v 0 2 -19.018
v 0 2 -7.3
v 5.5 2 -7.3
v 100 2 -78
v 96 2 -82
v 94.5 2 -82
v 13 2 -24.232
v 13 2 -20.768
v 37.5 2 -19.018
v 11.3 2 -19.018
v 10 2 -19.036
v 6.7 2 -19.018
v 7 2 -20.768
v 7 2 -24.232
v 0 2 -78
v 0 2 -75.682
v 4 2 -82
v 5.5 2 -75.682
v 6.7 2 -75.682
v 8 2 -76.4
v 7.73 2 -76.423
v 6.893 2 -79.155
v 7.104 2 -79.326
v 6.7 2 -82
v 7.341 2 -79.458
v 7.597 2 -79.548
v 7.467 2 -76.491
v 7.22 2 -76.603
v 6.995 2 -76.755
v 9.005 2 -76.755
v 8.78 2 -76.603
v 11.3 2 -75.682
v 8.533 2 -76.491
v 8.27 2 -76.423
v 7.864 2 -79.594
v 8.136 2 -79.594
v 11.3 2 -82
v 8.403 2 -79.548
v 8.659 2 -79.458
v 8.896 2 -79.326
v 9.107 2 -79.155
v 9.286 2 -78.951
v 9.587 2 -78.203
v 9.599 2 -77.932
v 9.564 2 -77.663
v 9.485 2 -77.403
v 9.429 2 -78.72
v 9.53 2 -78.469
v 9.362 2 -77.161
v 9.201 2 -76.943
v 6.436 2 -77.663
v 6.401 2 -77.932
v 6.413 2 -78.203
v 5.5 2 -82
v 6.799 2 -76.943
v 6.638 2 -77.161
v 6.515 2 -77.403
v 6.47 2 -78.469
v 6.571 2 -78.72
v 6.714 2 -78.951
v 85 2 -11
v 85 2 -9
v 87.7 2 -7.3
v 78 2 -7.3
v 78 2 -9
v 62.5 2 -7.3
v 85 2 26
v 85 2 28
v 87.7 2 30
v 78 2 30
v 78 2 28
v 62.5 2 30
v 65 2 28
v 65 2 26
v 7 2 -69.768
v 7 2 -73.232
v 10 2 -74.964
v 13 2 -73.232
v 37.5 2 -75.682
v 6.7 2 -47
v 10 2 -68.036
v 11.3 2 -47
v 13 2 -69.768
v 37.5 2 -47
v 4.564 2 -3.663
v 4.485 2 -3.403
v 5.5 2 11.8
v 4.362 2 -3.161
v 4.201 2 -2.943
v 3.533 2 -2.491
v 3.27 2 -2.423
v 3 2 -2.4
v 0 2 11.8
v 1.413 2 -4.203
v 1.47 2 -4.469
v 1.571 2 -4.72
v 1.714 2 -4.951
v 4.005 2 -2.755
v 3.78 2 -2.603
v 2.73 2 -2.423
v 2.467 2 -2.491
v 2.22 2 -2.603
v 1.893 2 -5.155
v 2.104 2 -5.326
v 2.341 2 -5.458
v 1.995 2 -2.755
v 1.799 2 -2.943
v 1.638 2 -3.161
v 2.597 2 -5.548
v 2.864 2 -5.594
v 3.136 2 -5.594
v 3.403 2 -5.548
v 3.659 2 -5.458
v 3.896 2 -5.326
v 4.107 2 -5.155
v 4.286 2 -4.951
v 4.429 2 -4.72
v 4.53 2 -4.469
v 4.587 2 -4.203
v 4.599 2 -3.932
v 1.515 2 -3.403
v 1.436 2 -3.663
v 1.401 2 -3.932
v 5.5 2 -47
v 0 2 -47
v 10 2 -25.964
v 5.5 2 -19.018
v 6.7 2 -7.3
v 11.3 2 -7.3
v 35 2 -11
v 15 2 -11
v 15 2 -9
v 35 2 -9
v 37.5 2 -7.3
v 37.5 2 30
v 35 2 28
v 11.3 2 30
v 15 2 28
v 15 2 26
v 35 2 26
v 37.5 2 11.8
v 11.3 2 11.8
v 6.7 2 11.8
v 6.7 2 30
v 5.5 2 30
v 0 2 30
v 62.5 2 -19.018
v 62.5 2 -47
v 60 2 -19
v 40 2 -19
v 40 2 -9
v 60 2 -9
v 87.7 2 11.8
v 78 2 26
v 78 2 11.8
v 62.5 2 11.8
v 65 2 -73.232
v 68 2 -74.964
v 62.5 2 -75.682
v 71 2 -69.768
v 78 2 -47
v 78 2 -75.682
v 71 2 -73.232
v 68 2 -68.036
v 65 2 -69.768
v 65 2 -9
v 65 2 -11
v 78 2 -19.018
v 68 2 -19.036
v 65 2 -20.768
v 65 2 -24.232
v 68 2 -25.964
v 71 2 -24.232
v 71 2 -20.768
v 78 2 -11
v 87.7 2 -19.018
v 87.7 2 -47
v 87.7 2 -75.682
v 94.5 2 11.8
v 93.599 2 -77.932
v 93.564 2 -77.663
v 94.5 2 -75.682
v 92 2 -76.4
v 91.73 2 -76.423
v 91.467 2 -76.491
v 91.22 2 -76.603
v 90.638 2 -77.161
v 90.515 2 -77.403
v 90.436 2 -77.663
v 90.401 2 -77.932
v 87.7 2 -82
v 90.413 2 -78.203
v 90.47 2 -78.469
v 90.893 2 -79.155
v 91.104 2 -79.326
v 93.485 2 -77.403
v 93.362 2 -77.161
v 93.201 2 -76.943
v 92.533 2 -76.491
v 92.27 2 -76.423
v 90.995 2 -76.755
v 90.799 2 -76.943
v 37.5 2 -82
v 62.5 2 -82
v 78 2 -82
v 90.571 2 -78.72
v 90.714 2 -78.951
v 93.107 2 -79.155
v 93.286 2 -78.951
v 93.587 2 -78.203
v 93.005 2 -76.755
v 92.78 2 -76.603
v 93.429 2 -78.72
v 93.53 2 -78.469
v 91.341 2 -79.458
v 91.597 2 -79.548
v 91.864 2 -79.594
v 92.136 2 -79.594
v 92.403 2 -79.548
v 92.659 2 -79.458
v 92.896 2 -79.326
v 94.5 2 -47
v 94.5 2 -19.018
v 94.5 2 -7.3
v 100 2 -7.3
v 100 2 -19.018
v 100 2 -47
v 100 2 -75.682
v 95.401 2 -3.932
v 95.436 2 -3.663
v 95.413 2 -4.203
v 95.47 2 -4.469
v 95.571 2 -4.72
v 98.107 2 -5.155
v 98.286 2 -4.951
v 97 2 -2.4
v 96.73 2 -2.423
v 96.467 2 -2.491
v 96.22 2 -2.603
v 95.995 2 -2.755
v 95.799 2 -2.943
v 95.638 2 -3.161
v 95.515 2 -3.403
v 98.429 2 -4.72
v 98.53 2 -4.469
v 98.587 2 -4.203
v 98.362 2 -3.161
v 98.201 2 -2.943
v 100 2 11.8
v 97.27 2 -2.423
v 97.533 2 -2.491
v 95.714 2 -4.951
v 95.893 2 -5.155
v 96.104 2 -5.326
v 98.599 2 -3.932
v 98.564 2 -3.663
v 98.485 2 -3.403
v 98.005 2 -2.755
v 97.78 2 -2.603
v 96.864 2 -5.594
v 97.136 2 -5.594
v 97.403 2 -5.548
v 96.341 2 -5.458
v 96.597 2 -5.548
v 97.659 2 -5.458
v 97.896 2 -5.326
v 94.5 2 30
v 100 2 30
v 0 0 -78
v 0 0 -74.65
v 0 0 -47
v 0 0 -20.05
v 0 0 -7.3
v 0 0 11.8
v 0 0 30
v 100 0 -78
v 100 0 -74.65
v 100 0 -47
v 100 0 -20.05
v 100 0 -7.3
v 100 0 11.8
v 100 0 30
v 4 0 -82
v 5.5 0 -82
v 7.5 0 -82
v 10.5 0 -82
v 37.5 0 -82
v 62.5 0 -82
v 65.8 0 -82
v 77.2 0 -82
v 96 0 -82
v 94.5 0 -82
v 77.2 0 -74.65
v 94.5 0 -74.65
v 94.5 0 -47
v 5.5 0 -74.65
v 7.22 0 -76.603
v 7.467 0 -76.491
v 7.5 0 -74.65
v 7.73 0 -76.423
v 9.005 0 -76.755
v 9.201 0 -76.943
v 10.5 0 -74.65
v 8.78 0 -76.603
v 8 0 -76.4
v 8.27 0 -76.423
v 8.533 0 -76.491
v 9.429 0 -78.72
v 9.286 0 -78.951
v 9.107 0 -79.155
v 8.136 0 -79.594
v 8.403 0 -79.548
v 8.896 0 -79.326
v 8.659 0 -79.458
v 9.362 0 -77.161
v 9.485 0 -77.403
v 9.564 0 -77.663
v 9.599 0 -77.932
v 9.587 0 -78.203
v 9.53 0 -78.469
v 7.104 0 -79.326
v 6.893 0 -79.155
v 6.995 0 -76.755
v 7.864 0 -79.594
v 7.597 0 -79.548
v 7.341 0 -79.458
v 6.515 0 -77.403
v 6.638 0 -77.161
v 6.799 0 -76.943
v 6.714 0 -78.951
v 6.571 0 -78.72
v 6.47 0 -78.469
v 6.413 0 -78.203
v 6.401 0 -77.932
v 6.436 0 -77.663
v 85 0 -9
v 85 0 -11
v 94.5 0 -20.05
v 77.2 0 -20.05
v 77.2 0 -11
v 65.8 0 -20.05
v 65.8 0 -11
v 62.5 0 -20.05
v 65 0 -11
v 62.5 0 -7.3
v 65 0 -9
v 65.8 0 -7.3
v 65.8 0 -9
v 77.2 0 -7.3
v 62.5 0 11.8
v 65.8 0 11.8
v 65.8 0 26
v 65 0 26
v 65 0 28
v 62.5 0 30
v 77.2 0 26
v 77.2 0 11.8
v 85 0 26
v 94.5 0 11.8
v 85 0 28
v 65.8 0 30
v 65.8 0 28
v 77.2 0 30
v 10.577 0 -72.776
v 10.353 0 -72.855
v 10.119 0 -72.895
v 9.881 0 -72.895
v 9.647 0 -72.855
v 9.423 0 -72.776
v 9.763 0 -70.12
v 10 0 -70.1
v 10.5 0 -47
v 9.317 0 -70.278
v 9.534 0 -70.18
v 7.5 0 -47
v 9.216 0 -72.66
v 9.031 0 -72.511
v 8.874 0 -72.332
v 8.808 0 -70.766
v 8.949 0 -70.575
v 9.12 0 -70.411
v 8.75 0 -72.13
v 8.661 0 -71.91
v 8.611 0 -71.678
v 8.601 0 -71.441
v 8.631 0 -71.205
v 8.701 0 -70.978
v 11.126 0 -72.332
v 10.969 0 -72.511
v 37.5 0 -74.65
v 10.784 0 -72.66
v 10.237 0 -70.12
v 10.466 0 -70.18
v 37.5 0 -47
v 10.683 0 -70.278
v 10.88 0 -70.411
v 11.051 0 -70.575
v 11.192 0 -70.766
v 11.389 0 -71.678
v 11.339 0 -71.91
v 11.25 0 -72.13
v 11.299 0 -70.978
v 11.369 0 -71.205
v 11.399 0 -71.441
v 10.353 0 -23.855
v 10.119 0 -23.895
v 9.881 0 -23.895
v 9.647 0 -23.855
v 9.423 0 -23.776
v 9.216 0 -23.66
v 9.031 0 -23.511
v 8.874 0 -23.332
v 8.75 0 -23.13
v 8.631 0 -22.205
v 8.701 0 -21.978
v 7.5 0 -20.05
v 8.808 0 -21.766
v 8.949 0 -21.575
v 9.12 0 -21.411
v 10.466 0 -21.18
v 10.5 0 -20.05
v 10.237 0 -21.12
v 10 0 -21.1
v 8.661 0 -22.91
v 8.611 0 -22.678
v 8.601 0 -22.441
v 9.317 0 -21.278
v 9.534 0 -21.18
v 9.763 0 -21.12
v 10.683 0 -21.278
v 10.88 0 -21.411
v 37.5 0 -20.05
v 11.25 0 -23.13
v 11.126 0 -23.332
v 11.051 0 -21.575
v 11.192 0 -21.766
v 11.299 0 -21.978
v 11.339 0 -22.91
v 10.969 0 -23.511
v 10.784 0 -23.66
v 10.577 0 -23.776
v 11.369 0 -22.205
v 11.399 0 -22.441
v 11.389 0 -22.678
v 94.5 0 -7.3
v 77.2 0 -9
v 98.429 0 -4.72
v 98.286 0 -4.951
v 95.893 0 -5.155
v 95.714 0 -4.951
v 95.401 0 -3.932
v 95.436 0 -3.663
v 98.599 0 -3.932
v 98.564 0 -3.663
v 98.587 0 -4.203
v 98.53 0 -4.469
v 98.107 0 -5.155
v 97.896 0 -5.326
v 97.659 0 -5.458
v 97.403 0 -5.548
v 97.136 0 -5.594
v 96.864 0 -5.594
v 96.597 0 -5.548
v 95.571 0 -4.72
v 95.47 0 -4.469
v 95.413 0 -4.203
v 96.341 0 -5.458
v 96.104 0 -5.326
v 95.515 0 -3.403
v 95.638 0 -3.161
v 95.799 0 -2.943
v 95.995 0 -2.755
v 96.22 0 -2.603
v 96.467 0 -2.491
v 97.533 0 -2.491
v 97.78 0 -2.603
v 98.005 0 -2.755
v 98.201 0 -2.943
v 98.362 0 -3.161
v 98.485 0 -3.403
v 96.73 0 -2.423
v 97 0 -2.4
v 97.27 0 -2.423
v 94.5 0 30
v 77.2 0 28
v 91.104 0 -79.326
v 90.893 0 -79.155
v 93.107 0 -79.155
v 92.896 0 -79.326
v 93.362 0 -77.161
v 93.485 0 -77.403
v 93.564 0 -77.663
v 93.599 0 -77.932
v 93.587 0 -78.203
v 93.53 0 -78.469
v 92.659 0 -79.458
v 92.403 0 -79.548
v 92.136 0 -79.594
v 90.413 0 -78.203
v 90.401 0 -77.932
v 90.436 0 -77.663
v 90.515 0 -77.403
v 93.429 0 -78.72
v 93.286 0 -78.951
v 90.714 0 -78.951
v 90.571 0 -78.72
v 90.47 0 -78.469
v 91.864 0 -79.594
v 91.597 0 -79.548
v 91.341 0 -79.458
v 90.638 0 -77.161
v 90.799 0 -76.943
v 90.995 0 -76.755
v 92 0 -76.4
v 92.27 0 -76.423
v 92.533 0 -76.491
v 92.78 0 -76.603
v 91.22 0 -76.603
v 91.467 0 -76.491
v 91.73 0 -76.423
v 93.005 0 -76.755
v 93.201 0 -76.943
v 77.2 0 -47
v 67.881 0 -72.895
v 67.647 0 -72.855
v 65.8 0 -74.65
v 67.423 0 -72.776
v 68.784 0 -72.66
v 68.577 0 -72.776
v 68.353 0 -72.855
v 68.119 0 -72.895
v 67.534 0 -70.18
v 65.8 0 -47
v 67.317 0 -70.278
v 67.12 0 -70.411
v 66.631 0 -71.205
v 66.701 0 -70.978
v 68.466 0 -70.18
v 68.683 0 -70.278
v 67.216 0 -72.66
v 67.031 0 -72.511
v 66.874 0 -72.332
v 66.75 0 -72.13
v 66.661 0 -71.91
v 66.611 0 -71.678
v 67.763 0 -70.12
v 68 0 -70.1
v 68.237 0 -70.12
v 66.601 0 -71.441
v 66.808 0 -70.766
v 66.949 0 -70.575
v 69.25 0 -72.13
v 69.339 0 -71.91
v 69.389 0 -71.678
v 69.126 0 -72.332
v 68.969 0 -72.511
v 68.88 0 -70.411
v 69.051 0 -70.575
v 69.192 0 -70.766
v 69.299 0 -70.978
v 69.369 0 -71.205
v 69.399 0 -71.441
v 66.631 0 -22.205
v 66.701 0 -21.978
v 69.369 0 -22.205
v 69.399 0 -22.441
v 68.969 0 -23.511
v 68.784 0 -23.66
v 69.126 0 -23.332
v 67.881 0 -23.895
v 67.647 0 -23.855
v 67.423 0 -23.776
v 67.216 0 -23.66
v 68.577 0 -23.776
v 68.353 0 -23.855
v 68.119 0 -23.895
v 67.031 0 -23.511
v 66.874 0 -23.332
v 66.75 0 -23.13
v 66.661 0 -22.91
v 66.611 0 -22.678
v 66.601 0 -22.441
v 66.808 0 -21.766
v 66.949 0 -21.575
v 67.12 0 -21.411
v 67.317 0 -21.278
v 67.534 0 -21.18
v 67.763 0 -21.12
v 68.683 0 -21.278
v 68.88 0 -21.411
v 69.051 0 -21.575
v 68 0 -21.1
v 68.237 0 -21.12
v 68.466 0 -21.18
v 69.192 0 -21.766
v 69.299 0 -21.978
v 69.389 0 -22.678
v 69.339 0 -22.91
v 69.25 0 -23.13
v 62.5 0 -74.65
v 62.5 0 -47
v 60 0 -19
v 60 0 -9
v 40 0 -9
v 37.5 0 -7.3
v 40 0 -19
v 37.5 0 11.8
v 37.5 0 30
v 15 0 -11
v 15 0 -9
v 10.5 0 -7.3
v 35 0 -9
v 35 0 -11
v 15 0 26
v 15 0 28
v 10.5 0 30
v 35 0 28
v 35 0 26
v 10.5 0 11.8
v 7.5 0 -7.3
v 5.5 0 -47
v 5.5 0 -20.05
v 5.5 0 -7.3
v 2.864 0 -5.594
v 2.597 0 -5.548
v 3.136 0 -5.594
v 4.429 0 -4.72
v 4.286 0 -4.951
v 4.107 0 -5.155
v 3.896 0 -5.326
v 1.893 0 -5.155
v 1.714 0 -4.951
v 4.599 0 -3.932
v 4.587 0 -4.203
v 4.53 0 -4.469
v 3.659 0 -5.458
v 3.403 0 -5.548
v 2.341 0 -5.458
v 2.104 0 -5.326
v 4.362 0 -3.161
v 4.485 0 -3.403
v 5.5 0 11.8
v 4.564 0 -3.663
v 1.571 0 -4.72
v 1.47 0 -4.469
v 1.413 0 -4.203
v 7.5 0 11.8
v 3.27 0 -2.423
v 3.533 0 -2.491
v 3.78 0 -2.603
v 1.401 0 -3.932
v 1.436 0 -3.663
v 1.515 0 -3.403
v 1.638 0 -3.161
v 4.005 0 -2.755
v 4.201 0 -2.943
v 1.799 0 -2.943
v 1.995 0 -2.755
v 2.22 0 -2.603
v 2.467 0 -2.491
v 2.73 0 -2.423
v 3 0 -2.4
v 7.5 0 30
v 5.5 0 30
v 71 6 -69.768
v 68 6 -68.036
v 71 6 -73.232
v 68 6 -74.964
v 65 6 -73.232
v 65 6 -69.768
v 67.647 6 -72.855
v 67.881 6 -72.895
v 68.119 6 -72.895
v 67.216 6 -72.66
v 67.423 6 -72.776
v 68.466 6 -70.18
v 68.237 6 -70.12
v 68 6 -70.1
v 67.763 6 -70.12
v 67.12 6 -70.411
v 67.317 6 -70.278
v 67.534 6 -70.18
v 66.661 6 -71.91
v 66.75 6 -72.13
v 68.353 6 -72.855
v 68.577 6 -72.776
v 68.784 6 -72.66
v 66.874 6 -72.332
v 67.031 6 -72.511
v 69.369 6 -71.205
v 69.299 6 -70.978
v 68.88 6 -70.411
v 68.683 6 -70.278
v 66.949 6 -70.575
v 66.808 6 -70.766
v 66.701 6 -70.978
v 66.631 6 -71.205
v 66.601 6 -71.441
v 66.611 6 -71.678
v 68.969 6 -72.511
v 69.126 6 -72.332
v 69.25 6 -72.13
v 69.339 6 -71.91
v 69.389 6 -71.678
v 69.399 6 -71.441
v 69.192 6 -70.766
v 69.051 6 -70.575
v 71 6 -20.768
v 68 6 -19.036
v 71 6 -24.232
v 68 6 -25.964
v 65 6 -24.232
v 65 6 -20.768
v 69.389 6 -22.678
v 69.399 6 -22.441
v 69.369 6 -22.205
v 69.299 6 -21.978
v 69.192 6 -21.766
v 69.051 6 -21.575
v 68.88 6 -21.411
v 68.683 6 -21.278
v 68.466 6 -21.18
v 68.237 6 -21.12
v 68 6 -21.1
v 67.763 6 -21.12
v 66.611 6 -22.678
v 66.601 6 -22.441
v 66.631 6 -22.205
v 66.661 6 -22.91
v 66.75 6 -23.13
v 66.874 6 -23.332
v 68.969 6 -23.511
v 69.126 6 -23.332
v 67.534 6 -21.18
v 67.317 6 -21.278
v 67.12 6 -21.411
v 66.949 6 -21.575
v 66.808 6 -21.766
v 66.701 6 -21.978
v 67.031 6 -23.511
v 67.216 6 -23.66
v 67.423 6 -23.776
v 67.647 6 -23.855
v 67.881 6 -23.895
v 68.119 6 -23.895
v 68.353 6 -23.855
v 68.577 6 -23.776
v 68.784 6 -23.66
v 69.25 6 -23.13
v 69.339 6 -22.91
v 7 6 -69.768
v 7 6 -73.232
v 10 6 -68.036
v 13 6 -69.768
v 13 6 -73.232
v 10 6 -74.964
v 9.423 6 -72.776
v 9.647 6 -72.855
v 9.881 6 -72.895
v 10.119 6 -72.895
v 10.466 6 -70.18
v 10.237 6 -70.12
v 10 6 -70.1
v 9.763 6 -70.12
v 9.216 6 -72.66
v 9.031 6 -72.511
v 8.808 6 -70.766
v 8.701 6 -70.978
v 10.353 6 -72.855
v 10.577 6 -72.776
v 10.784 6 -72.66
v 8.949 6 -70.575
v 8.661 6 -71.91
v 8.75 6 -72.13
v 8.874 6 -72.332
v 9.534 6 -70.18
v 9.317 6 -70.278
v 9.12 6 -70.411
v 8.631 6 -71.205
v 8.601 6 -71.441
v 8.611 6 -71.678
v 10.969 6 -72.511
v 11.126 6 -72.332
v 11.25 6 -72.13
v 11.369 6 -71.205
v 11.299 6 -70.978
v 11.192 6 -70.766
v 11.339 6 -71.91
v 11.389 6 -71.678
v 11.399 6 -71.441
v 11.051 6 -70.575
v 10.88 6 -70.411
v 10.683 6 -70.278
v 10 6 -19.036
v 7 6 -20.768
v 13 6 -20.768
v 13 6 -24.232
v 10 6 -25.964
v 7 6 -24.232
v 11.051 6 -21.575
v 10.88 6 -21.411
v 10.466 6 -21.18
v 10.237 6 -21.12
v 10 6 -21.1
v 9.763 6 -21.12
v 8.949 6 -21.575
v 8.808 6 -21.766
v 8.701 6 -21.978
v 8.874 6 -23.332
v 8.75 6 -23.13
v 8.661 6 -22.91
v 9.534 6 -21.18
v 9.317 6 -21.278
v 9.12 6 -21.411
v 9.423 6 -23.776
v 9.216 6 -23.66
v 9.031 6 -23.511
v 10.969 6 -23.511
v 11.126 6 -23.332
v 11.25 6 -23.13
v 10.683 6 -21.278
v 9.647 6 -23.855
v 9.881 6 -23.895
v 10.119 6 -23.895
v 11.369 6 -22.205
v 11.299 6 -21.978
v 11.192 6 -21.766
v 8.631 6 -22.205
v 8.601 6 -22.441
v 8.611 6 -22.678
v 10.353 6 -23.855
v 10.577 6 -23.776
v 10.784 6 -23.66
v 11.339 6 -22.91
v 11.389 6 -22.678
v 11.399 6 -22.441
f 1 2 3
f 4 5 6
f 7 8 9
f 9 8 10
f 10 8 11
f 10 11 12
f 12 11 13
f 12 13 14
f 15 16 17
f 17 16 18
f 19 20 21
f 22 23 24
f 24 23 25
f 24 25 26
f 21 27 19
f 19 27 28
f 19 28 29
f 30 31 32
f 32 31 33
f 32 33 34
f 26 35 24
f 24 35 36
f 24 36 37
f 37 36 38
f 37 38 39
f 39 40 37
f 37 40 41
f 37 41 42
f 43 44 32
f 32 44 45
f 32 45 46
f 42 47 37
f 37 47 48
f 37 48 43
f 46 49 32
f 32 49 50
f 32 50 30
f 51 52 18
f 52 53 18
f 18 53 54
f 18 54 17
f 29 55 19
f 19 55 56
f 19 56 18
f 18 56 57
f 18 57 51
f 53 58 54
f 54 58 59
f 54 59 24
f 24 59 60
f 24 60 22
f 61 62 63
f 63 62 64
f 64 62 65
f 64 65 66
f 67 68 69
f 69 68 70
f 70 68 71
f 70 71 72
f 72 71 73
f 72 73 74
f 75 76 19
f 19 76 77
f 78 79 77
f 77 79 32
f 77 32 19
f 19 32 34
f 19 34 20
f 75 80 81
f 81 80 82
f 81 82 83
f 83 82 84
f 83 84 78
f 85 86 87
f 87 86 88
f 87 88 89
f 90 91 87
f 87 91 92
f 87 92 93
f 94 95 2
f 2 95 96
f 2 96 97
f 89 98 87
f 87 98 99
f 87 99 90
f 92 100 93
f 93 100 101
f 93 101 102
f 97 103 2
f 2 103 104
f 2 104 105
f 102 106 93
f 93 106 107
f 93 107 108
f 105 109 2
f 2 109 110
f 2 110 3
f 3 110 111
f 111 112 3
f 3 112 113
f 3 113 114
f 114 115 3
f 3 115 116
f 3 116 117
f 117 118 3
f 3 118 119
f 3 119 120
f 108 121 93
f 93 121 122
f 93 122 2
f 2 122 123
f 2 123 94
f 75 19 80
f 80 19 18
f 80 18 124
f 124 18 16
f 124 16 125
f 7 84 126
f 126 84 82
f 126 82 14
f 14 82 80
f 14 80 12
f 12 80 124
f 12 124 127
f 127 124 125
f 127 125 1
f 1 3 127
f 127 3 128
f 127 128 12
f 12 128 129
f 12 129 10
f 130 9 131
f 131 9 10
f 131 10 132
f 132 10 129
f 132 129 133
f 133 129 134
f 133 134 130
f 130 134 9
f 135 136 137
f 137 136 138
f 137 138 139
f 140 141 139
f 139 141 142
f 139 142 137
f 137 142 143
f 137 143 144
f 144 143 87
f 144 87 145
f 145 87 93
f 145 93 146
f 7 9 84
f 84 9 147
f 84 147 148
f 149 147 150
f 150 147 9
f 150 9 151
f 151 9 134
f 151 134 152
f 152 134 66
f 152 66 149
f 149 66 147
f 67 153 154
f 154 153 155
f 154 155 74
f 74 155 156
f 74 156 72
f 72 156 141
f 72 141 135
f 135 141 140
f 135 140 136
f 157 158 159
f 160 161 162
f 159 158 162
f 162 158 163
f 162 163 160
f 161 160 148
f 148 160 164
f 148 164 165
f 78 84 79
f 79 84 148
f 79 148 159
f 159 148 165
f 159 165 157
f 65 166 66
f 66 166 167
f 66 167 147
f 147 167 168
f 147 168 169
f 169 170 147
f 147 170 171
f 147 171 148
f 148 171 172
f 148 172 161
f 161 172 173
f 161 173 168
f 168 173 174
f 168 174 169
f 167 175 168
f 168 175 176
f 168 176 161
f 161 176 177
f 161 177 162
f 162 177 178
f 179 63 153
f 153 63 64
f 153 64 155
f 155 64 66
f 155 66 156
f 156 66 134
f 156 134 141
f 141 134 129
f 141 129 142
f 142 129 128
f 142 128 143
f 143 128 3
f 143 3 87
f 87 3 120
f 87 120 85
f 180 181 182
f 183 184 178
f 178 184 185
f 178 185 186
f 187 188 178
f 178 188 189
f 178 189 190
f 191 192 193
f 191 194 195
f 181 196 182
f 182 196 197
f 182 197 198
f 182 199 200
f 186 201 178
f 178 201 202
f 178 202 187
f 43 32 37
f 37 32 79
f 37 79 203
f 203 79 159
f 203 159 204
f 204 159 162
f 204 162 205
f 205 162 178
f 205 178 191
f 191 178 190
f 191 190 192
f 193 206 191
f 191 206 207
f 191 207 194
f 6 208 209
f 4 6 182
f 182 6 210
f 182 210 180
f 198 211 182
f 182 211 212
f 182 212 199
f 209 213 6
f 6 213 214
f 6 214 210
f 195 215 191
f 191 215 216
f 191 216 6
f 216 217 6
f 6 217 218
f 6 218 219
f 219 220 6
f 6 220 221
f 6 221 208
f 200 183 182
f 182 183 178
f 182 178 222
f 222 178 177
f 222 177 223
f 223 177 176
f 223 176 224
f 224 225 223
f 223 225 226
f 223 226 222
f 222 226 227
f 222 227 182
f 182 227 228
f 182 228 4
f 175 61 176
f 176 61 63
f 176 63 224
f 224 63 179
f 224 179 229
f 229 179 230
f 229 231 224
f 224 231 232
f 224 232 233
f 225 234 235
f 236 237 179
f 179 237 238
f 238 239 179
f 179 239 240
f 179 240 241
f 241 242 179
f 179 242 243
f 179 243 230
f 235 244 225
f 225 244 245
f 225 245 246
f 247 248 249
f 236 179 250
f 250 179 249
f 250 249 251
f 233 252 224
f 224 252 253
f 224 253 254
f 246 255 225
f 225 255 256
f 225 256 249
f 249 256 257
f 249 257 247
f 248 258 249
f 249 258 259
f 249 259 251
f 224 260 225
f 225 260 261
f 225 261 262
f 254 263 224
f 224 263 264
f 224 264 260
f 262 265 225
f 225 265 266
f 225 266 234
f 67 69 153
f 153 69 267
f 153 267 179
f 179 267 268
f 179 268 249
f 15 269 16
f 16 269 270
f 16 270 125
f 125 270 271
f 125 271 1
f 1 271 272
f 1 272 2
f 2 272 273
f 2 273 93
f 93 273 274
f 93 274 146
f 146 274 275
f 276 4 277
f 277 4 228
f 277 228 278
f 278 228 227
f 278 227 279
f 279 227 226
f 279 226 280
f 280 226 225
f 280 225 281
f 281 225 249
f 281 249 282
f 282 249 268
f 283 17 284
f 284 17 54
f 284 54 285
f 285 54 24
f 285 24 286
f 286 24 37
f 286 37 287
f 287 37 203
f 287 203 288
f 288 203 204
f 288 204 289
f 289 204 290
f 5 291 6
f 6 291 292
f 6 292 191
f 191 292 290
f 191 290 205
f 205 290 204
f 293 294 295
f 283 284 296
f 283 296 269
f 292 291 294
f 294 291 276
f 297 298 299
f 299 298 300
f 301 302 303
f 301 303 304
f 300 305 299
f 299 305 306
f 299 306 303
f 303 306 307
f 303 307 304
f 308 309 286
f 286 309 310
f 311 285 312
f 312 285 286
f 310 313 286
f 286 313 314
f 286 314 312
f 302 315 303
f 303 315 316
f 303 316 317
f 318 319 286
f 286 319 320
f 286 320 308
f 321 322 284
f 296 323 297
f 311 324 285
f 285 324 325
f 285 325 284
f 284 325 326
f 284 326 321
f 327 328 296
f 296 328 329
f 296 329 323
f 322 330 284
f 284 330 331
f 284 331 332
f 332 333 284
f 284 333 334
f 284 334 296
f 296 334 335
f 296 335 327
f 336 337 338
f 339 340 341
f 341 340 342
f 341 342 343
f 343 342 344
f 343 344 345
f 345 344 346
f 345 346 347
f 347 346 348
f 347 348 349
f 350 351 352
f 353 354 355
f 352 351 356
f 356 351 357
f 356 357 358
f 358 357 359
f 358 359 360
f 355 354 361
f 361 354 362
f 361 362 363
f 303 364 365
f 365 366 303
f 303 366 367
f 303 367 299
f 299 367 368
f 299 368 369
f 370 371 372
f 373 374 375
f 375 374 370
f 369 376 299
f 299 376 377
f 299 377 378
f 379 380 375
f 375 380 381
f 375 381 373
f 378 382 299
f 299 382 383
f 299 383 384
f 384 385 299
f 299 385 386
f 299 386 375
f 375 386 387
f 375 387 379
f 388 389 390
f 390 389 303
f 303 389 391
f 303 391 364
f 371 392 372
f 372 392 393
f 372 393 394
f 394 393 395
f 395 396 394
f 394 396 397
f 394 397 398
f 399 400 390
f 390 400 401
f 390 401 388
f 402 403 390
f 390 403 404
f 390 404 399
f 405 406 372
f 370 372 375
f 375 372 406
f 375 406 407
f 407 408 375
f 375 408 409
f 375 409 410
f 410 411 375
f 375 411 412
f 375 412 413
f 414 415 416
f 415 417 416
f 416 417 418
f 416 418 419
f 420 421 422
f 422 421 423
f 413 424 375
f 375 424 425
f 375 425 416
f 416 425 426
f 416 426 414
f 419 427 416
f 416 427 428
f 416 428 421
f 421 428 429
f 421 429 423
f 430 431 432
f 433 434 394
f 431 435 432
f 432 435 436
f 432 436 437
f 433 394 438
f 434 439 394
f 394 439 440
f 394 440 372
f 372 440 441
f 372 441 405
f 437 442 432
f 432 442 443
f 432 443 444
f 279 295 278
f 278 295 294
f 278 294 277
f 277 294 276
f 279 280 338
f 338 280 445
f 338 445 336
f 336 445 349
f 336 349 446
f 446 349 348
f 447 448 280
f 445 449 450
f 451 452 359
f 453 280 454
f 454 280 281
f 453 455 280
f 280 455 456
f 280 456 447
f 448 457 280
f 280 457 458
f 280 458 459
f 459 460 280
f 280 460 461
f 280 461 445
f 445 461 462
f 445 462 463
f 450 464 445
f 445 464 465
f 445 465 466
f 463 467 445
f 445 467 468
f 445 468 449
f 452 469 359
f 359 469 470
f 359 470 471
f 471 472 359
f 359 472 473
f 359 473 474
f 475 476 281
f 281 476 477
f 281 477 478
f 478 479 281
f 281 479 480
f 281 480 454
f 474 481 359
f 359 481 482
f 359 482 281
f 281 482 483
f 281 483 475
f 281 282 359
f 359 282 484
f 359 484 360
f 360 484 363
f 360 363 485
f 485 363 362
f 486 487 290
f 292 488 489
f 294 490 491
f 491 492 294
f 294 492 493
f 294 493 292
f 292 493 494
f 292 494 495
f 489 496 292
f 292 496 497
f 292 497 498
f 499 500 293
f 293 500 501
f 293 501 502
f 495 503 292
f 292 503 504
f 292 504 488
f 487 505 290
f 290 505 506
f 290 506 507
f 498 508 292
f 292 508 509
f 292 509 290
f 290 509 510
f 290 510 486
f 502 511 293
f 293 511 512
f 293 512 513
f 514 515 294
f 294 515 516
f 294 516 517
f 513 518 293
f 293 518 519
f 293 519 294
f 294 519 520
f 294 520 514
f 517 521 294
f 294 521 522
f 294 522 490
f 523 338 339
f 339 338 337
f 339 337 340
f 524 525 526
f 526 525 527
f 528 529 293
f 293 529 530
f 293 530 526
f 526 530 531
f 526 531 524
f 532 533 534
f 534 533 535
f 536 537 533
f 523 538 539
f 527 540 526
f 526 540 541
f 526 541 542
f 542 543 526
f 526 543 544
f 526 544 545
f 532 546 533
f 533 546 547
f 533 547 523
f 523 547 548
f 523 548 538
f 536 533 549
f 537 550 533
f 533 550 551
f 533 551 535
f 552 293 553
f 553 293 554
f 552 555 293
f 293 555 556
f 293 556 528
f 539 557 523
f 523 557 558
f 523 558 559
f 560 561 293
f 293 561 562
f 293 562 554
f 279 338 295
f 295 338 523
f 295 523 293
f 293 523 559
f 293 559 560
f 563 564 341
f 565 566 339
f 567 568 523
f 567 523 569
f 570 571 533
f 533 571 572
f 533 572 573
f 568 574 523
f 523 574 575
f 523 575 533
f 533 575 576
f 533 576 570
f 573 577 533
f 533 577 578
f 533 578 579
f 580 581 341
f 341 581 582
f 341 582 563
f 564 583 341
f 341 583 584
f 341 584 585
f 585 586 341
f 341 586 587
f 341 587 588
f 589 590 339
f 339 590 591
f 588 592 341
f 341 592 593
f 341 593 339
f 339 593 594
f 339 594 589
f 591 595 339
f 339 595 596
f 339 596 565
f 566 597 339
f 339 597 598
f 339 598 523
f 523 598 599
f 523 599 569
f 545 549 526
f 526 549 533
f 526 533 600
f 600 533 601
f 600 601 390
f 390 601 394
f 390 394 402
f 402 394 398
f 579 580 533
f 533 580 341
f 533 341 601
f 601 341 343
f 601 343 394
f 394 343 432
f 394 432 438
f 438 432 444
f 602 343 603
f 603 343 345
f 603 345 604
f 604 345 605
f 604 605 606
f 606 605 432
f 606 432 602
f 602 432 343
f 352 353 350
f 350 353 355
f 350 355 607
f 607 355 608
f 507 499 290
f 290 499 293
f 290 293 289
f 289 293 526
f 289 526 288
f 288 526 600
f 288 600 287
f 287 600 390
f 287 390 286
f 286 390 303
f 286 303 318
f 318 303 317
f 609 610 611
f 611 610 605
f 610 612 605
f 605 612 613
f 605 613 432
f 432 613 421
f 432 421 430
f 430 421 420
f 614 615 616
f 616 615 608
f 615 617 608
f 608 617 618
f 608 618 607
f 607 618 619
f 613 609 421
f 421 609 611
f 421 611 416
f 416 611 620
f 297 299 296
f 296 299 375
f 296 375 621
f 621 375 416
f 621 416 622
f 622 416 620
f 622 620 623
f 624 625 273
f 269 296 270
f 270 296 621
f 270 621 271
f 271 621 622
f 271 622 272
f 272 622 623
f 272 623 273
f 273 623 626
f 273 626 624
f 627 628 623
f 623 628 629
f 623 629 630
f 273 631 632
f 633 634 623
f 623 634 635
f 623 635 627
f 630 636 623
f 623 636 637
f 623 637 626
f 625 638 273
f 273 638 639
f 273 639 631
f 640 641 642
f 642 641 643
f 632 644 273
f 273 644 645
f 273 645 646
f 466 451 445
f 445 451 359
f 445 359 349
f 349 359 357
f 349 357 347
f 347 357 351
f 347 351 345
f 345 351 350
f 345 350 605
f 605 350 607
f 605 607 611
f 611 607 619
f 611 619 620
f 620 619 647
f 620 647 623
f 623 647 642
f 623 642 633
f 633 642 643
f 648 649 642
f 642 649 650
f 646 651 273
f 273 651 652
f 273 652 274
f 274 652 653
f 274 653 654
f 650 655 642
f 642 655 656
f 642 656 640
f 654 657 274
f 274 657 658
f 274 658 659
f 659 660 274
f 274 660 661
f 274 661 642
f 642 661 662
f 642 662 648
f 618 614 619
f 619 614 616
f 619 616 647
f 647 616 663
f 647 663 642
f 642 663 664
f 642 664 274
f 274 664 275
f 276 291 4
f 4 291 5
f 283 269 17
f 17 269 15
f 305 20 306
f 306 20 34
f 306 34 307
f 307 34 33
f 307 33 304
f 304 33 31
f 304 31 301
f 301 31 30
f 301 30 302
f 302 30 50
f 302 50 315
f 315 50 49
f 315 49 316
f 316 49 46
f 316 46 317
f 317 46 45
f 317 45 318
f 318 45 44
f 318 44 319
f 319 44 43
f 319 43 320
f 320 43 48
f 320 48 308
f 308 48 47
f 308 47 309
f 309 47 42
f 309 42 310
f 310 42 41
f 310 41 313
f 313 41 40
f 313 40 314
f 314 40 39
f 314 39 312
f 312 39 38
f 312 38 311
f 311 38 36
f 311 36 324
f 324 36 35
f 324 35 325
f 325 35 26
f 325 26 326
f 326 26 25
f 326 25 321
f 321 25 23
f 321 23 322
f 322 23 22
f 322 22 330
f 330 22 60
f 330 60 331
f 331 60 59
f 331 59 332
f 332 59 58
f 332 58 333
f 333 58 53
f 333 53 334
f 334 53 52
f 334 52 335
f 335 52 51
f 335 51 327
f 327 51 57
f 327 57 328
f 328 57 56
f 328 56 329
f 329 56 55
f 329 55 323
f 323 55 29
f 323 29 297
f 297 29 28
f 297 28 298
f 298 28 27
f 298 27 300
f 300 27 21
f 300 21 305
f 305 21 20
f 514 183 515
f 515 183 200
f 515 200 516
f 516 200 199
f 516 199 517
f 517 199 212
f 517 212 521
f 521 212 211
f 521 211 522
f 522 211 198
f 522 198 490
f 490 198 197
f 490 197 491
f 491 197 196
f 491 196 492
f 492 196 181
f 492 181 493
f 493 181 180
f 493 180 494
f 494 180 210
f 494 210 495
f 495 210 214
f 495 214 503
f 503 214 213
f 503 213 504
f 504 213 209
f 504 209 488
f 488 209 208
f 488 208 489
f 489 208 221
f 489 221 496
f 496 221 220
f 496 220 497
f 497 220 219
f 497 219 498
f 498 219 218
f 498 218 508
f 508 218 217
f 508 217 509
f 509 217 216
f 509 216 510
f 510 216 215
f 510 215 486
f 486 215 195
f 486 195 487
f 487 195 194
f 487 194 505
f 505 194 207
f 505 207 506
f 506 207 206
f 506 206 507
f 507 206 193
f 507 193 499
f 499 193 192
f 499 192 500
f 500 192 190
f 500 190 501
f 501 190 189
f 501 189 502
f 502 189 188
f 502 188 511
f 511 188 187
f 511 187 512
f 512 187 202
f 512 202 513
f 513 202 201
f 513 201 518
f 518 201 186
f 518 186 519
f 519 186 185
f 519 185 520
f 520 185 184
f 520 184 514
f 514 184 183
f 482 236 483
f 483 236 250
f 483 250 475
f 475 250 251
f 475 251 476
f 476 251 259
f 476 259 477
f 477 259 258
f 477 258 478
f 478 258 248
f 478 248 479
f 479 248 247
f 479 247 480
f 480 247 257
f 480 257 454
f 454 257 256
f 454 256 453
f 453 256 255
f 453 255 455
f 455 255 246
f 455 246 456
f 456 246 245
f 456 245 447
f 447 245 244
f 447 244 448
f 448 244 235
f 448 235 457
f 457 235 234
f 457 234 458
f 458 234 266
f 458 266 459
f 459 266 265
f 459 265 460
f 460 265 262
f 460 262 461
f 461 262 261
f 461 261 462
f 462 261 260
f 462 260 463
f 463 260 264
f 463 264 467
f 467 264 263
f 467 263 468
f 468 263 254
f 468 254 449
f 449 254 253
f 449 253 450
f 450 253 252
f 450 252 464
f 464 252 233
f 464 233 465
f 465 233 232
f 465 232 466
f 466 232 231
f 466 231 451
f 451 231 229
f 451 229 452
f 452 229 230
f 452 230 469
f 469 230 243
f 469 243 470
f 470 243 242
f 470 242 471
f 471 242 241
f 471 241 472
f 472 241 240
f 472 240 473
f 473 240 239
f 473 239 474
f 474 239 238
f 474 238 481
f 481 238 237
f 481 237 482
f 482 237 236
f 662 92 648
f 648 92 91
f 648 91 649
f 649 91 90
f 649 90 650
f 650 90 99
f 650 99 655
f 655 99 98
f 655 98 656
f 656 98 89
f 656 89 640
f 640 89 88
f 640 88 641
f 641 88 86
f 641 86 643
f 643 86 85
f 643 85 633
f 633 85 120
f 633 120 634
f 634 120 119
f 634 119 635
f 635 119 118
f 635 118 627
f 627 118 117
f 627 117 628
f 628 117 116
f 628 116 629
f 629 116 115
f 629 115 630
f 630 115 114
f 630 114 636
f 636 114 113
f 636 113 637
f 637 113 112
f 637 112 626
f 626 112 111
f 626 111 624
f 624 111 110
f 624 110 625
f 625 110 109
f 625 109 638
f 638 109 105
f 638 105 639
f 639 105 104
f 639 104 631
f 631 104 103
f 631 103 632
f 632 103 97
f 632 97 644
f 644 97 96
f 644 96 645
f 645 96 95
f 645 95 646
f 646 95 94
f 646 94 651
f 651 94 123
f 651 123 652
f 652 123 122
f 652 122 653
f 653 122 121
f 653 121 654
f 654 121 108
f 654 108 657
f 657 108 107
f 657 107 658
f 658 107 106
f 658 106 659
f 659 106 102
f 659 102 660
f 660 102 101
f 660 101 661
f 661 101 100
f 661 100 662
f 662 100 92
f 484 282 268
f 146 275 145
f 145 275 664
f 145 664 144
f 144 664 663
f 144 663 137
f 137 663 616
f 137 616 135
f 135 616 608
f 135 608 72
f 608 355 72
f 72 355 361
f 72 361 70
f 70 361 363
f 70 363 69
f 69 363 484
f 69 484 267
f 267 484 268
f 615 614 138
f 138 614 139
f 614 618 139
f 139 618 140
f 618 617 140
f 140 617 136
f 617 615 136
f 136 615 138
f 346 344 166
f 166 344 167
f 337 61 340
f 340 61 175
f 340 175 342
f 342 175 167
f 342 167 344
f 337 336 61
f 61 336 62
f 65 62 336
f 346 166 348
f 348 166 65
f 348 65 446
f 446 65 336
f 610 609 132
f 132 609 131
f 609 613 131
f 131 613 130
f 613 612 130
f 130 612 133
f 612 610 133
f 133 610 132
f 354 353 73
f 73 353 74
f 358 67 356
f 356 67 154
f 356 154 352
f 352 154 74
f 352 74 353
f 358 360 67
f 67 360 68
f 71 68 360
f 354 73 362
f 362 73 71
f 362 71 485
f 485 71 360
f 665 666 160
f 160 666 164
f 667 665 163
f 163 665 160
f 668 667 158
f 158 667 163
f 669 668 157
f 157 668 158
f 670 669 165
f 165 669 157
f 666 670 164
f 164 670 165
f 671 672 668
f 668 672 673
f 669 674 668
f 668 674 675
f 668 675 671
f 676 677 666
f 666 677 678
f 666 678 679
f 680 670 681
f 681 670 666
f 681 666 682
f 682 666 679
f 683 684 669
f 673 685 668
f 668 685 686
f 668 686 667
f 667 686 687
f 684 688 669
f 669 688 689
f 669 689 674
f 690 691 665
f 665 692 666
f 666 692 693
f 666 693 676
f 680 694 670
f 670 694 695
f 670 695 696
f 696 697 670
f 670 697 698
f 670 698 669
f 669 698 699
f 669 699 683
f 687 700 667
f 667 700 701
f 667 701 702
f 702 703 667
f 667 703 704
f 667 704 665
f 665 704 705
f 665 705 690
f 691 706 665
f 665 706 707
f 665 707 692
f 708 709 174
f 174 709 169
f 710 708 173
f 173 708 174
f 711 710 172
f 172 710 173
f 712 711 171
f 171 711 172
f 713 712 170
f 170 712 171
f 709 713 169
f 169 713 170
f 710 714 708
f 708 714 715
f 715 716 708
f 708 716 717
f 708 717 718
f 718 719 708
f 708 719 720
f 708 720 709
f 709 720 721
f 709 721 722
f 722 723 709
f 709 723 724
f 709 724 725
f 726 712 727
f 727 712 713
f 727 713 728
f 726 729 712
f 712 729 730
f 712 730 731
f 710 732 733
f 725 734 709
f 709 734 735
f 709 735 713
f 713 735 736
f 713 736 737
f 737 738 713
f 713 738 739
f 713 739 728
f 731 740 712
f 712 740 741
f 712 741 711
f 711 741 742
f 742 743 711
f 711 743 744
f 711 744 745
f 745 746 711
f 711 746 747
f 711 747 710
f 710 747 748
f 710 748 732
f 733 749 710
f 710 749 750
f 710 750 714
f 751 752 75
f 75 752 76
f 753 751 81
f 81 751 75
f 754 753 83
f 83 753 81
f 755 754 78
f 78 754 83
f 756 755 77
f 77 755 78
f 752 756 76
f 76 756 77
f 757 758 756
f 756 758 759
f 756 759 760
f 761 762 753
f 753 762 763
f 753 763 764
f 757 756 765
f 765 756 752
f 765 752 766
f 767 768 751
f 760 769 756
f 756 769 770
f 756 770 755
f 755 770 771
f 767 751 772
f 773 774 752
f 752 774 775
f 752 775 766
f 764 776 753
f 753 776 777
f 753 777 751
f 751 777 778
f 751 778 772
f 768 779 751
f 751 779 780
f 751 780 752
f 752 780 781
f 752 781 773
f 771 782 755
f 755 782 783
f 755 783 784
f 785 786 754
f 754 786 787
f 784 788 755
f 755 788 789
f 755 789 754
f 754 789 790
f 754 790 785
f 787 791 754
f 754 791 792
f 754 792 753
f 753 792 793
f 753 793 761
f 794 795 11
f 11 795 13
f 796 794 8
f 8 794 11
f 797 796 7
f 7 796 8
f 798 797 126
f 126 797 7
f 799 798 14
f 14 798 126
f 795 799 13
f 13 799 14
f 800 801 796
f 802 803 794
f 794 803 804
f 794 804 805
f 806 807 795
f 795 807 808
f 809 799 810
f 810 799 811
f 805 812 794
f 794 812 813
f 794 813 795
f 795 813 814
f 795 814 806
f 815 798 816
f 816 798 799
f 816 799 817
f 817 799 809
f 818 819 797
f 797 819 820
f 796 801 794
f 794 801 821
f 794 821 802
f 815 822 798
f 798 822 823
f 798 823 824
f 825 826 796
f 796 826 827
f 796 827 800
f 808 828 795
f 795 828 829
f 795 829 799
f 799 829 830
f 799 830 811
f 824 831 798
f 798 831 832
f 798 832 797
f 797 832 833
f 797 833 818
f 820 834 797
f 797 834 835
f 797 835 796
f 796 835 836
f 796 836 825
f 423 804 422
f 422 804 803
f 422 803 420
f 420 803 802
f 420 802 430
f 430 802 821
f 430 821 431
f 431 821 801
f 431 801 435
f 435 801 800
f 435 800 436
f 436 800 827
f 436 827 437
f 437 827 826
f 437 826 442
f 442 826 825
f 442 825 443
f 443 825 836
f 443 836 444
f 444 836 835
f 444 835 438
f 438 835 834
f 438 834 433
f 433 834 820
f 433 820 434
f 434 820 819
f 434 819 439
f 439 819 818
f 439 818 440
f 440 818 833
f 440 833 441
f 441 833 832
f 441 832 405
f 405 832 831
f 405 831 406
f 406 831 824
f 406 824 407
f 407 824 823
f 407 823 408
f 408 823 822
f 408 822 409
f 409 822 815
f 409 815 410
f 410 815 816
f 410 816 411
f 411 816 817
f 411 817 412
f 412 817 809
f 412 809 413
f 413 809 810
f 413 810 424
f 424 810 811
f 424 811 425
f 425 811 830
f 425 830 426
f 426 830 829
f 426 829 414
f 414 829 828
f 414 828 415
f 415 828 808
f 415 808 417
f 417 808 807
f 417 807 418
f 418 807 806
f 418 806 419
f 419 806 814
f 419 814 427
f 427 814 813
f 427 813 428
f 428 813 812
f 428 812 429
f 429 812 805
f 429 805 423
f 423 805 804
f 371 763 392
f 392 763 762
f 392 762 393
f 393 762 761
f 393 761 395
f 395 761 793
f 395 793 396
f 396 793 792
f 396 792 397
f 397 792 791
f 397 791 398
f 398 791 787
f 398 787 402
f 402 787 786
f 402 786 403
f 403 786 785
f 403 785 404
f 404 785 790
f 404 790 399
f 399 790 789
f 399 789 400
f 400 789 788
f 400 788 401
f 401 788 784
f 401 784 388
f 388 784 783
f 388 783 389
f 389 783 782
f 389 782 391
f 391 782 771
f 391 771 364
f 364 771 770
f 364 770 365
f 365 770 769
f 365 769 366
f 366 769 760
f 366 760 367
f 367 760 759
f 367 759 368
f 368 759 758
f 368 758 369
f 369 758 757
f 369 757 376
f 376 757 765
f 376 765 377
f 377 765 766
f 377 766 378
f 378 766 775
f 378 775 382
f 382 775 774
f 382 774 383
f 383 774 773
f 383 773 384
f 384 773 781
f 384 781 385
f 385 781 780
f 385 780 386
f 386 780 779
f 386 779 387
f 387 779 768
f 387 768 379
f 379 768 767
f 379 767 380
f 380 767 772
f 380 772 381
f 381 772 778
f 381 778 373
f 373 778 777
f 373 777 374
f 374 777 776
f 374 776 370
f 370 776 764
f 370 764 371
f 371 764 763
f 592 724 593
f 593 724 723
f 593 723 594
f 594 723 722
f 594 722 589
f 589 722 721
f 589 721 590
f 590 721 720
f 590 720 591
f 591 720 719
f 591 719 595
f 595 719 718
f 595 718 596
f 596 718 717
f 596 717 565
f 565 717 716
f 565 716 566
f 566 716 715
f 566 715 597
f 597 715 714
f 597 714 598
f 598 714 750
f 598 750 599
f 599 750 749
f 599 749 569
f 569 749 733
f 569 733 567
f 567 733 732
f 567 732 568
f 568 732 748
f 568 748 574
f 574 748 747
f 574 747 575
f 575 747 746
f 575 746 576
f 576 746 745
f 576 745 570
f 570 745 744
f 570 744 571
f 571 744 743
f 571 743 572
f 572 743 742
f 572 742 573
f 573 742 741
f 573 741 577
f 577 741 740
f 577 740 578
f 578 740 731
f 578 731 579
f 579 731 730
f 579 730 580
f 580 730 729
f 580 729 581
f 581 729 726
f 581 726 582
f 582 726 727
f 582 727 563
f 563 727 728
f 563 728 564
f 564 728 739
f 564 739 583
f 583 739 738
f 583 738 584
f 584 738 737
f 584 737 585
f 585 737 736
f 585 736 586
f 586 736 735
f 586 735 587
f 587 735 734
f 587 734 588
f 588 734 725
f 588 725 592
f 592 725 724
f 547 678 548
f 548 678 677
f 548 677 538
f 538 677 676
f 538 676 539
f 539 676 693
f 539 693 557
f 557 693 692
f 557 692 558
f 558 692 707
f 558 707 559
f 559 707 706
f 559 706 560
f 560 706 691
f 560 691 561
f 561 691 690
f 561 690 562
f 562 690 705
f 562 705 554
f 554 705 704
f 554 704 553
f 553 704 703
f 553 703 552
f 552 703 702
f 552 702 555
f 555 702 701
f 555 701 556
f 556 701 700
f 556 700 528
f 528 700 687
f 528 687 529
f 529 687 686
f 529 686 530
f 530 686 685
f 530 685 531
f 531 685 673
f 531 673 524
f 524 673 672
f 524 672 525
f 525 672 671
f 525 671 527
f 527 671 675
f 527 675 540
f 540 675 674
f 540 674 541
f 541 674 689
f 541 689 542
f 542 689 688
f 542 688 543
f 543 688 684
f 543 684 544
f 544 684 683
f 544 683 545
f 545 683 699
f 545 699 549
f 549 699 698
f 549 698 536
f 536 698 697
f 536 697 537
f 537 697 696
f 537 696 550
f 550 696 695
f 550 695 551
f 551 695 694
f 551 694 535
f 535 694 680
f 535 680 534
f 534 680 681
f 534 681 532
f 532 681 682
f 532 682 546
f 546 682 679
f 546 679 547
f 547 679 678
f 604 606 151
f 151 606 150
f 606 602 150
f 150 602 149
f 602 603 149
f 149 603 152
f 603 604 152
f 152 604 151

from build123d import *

# Parameters (mm, degrees)
SKETCH1_W           = 100
SKETCH1_H           = 82
BOSS_EXTRUDE1_DEPTH = 2
CHAMFER1_SIZE       = 4
SKETCH2_R           = 1.6
CUT_EXTRUDE1_DEPTH  = 130.336769714
SKETCH3_W           = 100
SKETCH3_H           = 2
BOSS_EXTRUDE2_DEPTH = 30
SKETCH4_W           = 20
SKETCH4_H           = 2
CUT_EXTRUDE2_DEPTH  = 130.336769714
BOSS_EXTRUDE3_DEPTH = 4
SKETCH6_R           = 1.4
CUT_EXTRUDE3_DEPTH  = 130.460418661
SKETCH7_W           = 20
SKETCH7_H           = 10
CUT_EXTRUDE4_DEPTH  = 130.383151917


with BuildPart() as part:
    # Sketch1 → Boss-Extrude1 (new body)
    with BuildSketch(Plane(origin=(0, 0, 0), x_dir=(1, 0, 0), z_dir=(0, 1, 0))):
        with Locations((50, 41)):
            Rectangle(SKETCH1_W, SKETCH1_H)
    extrude(amount=BOSS_EXTRUDE1_DEPTH)

    # Chamfer1
    chamfer1_edges = [part.edges().sort_by_distance(p)[0] for p in [
        (0, 1, -82),
        (100, 1, -82),
    ]]
    chamfer(chamfer1_edges, length=CHAMFER1_SIZE)

    # Sketch2 → Cut-Extrude1 (cut, through all)
    with BuildSketch(Plane(origin=(0, 2, 0), x_dir=(1, 0, 0), z_dir=(0, 1, 0))):
        with Locations(Location((8, 78, 0), (0, 0, 270))):
            Circle(SKETCH2_R)
        with Locations(Location((92, 78, 0), (0, 0, 270))):
            Circle(SKETCH2_R)
        with Locations(Location((97, 4, 0), (0, 0, 270))):
            Circle(SKETCH2_R)
        with Locations(Location((3, 4, 0), (0, 0, 270))):
            Circle(SKETCH2_R)
    extrude(amount=-CUT_EXTRUDE1_DEPTH, mode=Mode.SUBTRACT)

    # Sketch3 → Boss-Extrude2 (add)
    with BuildSketch(Plane.XY):
        with Locations((50, 1)):
            Rectangle(SKETCH3_W, SKETCH3_H)
    extrude(amount=BOSS_EXTRUDE2_DEPTH)

    # Sketch4 → Cut-Extrude2 (cut, through all)
    with BuildSketch(Plane(origin=(0, 2, 0), x_dir=(1, 0, 0), z_dir=(0, 1, 0))):
        with Locations((25, -27)):
            Rectangle(SKETCH4_W, SKETCH4_H)
        with Locations((75, -27)):
            Rectangle(SKETCH4_W, SKETCH4_H)
        with Locations((25, 10)):
            Rectangle(SKETCH4_W, SKETCH4_H)
        with Locations((75, 10)):
            Rectangle(SKETCH4_W, SKETCH4_H)
    extrude(amount=-CUT_EXTRUDE2_DEPTH, mode=Mode.SUBTRACT)

    # Sketch5 → Boss-Extrude3 (add)
    with BuildSketch(Plane(origin=(0, 2, 0), x_dir=(1, 0, 0), z_dir=(0, 1, 0))):
        Polygon((10, 68.035898385), (13, 69.767949192), (13, 73.232050808), (10, 74.964101615), (7, 73.232050808), (7, 69.767949192), align=None)
        Polygon((10, 25.964101615), (7, 24.232050808), (7, 20.767949192), (10, 19.035898385), (13, 20.767949192), (13, 24.232050808), align=None)
        Polygon((68, 25.964101615), (65, 24.232050808), (65, 20.767949192), (68, 19.035898385), (71, 20.767949192), (71, 24.232050808), align=None)
        Polygon((68, 68.035898385), (71, 69.767949192), (71, 73.232050808), (68, 74.964101615), (65, 73.232050808), (65, 69.767949192), align=None)
    extrude(amount=BOSS_EXTRUDE3_DEPTH)

    # Sketch6 → Cut-Extrude3 (cut, through all)
    with BuildSketch(Plane(origin=(0, 6, 0), x_dir=(1, 0, 0), z_dir=(0, 1, 0))):
        with Locations(Location((10, 71.5, 0), (0, 0, 270))):
            Circle(SKETCH6_R)
        with Locations(Location((68, 71.5, 0), (0, 0, 270))):
            Circle(SKETCH6_R)
        with Locations(Location((68, 22.5, 0), (0, 0, 270))):
            Circle(SKETCH6_R)
        with Locations(Location((10, 22.5, 0), (0, 0, 270))):
            Circle(SKETCH6_R)
    extrude(amount=-CUT_EXTRUDE3_DEPTH, mode=Mode.SUBTRACT)

    # Sketch7 → Cut-Extrude4 (cut, through all)
    with BuildSketch(Plane(origin=(0, 2, 0), x_dir=(1, 0, 0), z_dir=(0, 1, 0))):
        with Locations((50, 14)):
            Rectangle(SKETCH7_W, SKETCH7_H)
    extrude(amount=-CUT_EXTRUDE4_DEPTH, mode=Mode.SUBTRACT)


solid = part.part
